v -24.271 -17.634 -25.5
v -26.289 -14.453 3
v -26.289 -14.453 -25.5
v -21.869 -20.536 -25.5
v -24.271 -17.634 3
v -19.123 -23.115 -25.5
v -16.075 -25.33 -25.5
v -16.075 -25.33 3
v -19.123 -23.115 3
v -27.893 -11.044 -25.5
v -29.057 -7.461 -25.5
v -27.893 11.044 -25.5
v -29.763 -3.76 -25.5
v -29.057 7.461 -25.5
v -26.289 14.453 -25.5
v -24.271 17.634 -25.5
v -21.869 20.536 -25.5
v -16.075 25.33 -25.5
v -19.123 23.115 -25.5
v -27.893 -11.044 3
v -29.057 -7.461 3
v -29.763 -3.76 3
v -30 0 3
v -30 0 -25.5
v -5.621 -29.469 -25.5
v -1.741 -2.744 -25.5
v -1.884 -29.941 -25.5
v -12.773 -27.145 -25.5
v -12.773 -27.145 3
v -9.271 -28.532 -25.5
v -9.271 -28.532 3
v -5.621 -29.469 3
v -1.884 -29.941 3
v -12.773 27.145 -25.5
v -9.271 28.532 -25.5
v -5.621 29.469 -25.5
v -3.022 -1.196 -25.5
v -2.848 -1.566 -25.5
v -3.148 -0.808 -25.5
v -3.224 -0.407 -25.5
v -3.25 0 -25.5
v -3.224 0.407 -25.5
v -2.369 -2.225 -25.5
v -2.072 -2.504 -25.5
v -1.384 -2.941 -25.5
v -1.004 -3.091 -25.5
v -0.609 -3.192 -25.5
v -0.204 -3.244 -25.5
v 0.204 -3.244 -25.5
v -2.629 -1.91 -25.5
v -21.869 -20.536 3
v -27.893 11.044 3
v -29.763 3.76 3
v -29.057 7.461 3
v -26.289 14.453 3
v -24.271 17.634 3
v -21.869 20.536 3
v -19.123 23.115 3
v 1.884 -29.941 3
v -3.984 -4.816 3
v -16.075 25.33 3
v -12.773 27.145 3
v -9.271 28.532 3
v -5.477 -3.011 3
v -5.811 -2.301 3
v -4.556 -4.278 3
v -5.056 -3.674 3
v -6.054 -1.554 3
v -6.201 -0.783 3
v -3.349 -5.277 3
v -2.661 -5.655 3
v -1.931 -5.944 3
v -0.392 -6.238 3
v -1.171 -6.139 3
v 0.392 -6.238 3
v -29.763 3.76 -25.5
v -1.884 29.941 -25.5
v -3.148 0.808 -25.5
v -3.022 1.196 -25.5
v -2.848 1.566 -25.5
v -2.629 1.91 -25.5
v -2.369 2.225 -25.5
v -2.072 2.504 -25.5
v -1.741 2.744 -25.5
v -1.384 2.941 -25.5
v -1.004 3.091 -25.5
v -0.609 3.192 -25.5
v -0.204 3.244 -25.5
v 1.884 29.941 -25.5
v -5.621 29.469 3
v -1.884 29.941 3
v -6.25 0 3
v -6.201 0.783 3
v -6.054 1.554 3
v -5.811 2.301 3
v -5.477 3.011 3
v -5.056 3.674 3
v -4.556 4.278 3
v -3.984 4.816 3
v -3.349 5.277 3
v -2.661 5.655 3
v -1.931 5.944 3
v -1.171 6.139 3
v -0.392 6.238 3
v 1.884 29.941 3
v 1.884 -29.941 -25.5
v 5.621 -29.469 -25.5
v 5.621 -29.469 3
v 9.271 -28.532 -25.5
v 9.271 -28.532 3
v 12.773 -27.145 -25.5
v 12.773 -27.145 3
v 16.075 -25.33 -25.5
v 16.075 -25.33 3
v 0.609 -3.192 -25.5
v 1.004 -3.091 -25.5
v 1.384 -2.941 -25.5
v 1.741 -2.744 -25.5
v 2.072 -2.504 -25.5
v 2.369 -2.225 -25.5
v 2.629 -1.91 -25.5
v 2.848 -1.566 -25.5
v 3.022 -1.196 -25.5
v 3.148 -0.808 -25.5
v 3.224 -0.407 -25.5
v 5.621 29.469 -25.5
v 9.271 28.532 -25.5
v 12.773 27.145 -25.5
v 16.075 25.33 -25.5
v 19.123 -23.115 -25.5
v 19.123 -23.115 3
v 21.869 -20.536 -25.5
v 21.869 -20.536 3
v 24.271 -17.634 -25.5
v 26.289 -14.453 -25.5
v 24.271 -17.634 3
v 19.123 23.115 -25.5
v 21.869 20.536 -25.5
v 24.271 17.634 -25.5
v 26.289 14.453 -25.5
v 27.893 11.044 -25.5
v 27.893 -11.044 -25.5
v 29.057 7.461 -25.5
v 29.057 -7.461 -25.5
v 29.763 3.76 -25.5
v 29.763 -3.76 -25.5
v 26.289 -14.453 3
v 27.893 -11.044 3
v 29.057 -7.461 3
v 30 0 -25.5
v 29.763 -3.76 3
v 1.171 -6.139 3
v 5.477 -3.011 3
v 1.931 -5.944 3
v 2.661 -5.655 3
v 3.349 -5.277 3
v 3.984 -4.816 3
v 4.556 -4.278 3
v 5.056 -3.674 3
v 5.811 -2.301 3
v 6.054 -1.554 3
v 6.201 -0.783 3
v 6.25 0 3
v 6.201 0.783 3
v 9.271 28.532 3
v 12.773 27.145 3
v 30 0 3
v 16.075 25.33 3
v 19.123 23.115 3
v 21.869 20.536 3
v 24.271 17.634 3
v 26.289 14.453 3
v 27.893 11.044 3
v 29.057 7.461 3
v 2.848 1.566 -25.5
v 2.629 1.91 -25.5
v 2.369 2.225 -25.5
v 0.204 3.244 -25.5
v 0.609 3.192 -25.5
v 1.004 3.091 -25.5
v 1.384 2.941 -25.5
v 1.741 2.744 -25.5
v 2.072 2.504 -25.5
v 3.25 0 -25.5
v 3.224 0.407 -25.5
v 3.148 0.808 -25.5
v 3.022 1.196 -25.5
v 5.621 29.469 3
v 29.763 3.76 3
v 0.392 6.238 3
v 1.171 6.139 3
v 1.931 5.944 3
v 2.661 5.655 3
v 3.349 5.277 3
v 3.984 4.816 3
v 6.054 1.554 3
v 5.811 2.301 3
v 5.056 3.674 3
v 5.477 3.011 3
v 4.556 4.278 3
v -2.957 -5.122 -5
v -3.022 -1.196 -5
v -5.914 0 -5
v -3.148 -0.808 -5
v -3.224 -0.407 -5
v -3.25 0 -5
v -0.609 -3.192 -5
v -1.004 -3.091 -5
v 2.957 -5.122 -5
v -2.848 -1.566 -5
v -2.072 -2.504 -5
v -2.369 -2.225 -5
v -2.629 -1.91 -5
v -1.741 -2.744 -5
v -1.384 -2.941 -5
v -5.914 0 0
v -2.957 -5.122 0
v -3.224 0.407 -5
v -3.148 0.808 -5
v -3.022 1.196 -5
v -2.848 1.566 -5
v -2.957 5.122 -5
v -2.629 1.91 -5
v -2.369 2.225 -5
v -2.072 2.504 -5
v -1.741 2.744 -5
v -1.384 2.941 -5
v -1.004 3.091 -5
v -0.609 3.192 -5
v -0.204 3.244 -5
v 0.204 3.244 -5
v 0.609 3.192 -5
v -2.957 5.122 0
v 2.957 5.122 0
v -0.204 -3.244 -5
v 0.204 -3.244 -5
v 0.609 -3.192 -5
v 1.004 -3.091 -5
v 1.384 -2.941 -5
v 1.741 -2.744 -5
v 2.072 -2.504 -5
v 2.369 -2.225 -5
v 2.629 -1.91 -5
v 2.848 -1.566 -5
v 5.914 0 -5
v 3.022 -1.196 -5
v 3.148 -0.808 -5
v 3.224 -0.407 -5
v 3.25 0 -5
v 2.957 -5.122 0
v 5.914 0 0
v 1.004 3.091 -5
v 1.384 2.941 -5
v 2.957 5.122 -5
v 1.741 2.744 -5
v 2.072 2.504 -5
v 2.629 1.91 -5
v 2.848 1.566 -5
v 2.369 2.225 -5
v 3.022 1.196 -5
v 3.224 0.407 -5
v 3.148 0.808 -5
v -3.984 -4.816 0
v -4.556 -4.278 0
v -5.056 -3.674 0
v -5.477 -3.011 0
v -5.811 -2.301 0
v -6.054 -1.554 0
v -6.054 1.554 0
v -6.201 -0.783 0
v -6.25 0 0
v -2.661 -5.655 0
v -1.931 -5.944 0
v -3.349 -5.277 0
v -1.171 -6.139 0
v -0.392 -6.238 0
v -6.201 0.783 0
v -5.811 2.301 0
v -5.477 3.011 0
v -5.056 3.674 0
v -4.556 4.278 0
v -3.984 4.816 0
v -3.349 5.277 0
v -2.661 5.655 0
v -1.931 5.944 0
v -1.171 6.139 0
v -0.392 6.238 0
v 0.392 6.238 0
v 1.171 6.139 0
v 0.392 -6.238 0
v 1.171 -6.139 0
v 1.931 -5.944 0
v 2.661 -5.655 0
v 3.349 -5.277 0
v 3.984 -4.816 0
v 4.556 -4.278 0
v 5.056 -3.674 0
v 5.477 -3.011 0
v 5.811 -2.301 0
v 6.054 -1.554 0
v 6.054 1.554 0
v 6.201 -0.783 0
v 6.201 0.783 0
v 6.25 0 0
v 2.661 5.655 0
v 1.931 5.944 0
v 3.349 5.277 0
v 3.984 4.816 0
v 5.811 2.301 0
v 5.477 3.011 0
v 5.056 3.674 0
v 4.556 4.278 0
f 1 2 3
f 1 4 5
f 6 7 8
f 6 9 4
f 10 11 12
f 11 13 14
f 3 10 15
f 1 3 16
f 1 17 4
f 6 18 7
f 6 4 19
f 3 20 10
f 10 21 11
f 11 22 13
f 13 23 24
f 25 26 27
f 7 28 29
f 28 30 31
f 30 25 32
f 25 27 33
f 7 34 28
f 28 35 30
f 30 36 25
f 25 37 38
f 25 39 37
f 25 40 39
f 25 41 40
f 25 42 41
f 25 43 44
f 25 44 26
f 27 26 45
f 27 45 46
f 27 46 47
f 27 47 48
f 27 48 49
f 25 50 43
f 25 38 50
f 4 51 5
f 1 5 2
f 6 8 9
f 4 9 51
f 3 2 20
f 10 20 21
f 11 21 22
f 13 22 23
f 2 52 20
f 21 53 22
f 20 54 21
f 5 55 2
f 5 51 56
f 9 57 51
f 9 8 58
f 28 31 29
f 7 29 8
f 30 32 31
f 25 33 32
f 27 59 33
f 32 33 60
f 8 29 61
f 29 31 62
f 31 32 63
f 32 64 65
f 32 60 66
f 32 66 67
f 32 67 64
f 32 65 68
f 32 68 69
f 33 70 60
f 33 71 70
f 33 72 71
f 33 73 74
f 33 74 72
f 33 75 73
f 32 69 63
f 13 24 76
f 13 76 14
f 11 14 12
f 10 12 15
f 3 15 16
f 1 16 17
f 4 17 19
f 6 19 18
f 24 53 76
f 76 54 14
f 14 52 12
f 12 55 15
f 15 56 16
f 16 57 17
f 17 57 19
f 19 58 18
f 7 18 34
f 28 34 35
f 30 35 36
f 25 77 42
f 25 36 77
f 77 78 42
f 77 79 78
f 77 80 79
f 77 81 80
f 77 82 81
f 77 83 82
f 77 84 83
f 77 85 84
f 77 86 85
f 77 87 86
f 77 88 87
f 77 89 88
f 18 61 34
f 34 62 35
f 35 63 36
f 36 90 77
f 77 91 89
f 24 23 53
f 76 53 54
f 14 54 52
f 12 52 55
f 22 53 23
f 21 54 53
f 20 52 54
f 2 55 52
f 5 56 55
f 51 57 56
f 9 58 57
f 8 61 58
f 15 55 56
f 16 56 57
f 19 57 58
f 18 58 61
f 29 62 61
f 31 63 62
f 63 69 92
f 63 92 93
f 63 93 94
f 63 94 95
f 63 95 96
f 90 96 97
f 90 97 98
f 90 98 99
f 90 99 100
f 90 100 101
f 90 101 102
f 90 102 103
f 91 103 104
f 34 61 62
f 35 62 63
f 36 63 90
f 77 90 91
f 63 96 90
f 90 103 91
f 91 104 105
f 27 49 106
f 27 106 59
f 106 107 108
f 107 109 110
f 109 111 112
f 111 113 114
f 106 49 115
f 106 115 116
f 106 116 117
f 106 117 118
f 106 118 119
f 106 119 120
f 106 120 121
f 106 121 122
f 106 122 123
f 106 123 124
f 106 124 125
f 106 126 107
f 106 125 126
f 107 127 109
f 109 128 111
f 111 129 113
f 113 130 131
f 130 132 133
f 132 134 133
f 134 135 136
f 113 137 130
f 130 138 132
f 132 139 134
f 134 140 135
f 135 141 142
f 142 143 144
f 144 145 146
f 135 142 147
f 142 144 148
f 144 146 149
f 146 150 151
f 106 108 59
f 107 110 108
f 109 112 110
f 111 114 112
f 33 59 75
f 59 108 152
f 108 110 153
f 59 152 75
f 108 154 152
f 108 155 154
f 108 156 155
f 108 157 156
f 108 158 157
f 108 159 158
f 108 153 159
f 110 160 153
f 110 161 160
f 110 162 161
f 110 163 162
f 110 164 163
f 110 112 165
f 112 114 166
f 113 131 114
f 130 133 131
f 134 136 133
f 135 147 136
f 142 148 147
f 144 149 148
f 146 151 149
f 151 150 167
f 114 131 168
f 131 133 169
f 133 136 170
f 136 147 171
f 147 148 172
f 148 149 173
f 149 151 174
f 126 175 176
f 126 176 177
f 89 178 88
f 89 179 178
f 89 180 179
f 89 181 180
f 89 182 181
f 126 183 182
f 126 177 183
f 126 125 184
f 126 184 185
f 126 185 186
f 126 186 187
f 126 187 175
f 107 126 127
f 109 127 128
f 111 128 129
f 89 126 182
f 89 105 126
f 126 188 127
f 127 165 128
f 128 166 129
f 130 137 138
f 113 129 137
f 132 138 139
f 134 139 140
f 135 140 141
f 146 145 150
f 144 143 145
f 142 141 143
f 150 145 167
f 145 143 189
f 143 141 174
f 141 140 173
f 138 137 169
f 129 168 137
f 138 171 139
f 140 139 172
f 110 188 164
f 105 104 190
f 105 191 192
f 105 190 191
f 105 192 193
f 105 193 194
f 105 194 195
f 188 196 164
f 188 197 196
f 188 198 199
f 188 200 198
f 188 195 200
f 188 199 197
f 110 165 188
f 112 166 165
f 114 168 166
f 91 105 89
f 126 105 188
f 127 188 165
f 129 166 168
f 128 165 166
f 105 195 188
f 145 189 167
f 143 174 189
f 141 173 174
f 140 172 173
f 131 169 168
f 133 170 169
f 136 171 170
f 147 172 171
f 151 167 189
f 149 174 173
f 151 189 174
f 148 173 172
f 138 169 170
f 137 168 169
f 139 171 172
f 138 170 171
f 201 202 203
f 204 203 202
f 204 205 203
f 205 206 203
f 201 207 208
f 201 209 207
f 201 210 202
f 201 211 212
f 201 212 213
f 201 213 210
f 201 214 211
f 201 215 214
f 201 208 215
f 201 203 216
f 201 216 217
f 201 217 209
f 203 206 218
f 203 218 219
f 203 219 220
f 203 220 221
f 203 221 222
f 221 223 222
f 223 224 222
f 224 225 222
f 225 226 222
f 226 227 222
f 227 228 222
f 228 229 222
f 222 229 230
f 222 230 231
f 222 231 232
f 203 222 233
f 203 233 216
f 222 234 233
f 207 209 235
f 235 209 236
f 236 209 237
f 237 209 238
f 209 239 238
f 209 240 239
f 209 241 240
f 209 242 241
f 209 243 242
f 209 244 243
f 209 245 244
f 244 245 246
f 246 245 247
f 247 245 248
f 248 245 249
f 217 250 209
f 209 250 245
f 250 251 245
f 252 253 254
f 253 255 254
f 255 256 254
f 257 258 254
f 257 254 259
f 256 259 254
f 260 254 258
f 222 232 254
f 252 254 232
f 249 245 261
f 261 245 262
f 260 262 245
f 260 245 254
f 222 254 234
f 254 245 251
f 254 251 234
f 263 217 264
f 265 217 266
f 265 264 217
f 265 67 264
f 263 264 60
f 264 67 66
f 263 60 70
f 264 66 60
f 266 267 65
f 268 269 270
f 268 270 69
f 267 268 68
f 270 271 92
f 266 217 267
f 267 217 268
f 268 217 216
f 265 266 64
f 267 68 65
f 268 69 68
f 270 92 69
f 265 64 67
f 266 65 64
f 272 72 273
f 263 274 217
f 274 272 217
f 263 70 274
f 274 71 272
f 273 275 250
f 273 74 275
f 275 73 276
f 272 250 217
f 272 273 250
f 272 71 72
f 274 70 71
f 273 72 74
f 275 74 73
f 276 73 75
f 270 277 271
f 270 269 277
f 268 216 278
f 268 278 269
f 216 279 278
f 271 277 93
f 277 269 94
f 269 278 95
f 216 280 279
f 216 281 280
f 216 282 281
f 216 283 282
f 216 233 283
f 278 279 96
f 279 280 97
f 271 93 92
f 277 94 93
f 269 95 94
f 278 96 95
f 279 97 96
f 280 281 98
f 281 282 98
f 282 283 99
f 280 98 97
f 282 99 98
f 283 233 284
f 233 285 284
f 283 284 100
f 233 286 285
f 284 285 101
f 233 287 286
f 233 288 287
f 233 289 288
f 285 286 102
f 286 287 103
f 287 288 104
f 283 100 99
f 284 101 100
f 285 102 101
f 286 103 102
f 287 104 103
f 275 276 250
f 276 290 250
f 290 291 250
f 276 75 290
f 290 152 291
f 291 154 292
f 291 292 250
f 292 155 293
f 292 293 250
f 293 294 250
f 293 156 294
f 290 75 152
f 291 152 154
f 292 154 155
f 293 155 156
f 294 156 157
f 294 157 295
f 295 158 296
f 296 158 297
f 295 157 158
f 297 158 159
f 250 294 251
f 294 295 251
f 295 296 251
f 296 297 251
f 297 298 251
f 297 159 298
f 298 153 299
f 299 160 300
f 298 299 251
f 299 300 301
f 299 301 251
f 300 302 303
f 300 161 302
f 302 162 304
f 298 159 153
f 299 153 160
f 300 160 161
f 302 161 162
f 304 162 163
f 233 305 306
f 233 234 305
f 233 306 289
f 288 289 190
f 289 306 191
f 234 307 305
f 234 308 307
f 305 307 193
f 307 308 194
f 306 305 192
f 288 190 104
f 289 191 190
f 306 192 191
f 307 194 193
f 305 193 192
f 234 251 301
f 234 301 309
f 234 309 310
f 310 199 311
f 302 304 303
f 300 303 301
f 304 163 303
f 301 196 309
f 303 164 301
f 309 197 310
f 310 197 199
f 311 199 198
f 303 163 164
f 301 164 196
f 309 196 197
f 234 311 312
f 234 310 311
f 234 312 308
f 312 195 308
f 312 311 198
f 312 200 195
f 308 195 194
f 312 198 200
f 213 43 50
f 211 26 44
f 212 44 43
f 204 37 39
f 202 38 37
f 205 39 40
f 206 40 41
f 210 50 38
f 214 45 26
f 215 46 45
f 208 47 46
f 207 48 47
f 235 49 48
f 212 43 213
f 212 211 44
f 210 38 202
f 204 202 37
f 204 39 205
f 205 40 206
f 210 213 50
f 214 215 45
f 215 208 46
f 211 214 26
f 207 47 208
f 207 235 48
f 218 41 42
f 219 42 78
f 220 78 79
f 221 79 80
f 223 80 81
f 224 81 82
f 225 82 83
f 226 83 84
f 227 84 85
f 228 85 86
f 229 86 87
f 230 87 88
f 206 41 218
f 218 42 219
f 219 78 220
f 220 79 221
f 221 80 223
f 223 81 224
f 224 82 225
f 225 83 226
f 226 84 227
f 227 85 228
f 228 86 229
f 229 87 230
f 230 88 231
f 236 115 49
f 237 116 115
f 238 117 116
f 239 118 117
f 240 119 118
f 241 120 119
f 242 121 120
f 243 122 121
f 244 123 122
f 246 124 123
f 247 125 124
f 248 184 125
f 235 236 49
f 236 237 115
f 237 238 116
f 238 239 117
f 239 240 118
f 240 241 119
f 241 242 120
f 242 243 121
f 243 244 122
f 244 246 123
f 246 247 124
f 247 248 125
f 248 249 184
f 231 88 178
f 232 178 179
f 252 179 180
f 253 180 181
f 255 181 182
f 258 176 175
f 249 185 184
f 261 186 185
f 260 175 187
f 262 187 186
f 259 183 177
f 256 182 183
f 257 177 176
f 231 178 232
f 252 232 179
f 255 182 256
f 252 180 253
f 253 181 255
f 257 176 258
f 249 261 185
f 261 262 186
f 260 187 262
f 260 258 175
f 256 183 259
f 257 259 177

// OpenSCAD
$fn = 50;

difference() {
	union() {
		translate(v = [0, 0, -25.5]) {
			cylinder(h = 28.5, r = 30.0);
		}
		#translate(v = [0, 0, -27.0]) {
			cylinder(h = 27, r = 2.875);
		}
	}
	union() {
		translate(v = [0, 0, 0]) {
			rotate(a = [0, 0, 0]) {
				difference() {
					union() {
						translate(v = [0, 0, -5]) {
							linear_extrude(height = 5) {
								polygon(points = [[5.914249999999999, 0.0], [2.957125, 5.1218907443321156], [-2.9571249999999982, 5.1218907443321156], [-5.914249999999999, 7.242867331857232e-16], [-2.9571250000000022, -5.121890744332115], [2.9571249999999956, -5.121890744332118]]);
							}
						}
					}
					union();
				}
			}
		}
		#cylinder(h = 3, r = 6.25);
		#translate(v = [0, 0, -100.0]) {
			cylinder(h = 200, r = 3.25);
		}
	}
}
